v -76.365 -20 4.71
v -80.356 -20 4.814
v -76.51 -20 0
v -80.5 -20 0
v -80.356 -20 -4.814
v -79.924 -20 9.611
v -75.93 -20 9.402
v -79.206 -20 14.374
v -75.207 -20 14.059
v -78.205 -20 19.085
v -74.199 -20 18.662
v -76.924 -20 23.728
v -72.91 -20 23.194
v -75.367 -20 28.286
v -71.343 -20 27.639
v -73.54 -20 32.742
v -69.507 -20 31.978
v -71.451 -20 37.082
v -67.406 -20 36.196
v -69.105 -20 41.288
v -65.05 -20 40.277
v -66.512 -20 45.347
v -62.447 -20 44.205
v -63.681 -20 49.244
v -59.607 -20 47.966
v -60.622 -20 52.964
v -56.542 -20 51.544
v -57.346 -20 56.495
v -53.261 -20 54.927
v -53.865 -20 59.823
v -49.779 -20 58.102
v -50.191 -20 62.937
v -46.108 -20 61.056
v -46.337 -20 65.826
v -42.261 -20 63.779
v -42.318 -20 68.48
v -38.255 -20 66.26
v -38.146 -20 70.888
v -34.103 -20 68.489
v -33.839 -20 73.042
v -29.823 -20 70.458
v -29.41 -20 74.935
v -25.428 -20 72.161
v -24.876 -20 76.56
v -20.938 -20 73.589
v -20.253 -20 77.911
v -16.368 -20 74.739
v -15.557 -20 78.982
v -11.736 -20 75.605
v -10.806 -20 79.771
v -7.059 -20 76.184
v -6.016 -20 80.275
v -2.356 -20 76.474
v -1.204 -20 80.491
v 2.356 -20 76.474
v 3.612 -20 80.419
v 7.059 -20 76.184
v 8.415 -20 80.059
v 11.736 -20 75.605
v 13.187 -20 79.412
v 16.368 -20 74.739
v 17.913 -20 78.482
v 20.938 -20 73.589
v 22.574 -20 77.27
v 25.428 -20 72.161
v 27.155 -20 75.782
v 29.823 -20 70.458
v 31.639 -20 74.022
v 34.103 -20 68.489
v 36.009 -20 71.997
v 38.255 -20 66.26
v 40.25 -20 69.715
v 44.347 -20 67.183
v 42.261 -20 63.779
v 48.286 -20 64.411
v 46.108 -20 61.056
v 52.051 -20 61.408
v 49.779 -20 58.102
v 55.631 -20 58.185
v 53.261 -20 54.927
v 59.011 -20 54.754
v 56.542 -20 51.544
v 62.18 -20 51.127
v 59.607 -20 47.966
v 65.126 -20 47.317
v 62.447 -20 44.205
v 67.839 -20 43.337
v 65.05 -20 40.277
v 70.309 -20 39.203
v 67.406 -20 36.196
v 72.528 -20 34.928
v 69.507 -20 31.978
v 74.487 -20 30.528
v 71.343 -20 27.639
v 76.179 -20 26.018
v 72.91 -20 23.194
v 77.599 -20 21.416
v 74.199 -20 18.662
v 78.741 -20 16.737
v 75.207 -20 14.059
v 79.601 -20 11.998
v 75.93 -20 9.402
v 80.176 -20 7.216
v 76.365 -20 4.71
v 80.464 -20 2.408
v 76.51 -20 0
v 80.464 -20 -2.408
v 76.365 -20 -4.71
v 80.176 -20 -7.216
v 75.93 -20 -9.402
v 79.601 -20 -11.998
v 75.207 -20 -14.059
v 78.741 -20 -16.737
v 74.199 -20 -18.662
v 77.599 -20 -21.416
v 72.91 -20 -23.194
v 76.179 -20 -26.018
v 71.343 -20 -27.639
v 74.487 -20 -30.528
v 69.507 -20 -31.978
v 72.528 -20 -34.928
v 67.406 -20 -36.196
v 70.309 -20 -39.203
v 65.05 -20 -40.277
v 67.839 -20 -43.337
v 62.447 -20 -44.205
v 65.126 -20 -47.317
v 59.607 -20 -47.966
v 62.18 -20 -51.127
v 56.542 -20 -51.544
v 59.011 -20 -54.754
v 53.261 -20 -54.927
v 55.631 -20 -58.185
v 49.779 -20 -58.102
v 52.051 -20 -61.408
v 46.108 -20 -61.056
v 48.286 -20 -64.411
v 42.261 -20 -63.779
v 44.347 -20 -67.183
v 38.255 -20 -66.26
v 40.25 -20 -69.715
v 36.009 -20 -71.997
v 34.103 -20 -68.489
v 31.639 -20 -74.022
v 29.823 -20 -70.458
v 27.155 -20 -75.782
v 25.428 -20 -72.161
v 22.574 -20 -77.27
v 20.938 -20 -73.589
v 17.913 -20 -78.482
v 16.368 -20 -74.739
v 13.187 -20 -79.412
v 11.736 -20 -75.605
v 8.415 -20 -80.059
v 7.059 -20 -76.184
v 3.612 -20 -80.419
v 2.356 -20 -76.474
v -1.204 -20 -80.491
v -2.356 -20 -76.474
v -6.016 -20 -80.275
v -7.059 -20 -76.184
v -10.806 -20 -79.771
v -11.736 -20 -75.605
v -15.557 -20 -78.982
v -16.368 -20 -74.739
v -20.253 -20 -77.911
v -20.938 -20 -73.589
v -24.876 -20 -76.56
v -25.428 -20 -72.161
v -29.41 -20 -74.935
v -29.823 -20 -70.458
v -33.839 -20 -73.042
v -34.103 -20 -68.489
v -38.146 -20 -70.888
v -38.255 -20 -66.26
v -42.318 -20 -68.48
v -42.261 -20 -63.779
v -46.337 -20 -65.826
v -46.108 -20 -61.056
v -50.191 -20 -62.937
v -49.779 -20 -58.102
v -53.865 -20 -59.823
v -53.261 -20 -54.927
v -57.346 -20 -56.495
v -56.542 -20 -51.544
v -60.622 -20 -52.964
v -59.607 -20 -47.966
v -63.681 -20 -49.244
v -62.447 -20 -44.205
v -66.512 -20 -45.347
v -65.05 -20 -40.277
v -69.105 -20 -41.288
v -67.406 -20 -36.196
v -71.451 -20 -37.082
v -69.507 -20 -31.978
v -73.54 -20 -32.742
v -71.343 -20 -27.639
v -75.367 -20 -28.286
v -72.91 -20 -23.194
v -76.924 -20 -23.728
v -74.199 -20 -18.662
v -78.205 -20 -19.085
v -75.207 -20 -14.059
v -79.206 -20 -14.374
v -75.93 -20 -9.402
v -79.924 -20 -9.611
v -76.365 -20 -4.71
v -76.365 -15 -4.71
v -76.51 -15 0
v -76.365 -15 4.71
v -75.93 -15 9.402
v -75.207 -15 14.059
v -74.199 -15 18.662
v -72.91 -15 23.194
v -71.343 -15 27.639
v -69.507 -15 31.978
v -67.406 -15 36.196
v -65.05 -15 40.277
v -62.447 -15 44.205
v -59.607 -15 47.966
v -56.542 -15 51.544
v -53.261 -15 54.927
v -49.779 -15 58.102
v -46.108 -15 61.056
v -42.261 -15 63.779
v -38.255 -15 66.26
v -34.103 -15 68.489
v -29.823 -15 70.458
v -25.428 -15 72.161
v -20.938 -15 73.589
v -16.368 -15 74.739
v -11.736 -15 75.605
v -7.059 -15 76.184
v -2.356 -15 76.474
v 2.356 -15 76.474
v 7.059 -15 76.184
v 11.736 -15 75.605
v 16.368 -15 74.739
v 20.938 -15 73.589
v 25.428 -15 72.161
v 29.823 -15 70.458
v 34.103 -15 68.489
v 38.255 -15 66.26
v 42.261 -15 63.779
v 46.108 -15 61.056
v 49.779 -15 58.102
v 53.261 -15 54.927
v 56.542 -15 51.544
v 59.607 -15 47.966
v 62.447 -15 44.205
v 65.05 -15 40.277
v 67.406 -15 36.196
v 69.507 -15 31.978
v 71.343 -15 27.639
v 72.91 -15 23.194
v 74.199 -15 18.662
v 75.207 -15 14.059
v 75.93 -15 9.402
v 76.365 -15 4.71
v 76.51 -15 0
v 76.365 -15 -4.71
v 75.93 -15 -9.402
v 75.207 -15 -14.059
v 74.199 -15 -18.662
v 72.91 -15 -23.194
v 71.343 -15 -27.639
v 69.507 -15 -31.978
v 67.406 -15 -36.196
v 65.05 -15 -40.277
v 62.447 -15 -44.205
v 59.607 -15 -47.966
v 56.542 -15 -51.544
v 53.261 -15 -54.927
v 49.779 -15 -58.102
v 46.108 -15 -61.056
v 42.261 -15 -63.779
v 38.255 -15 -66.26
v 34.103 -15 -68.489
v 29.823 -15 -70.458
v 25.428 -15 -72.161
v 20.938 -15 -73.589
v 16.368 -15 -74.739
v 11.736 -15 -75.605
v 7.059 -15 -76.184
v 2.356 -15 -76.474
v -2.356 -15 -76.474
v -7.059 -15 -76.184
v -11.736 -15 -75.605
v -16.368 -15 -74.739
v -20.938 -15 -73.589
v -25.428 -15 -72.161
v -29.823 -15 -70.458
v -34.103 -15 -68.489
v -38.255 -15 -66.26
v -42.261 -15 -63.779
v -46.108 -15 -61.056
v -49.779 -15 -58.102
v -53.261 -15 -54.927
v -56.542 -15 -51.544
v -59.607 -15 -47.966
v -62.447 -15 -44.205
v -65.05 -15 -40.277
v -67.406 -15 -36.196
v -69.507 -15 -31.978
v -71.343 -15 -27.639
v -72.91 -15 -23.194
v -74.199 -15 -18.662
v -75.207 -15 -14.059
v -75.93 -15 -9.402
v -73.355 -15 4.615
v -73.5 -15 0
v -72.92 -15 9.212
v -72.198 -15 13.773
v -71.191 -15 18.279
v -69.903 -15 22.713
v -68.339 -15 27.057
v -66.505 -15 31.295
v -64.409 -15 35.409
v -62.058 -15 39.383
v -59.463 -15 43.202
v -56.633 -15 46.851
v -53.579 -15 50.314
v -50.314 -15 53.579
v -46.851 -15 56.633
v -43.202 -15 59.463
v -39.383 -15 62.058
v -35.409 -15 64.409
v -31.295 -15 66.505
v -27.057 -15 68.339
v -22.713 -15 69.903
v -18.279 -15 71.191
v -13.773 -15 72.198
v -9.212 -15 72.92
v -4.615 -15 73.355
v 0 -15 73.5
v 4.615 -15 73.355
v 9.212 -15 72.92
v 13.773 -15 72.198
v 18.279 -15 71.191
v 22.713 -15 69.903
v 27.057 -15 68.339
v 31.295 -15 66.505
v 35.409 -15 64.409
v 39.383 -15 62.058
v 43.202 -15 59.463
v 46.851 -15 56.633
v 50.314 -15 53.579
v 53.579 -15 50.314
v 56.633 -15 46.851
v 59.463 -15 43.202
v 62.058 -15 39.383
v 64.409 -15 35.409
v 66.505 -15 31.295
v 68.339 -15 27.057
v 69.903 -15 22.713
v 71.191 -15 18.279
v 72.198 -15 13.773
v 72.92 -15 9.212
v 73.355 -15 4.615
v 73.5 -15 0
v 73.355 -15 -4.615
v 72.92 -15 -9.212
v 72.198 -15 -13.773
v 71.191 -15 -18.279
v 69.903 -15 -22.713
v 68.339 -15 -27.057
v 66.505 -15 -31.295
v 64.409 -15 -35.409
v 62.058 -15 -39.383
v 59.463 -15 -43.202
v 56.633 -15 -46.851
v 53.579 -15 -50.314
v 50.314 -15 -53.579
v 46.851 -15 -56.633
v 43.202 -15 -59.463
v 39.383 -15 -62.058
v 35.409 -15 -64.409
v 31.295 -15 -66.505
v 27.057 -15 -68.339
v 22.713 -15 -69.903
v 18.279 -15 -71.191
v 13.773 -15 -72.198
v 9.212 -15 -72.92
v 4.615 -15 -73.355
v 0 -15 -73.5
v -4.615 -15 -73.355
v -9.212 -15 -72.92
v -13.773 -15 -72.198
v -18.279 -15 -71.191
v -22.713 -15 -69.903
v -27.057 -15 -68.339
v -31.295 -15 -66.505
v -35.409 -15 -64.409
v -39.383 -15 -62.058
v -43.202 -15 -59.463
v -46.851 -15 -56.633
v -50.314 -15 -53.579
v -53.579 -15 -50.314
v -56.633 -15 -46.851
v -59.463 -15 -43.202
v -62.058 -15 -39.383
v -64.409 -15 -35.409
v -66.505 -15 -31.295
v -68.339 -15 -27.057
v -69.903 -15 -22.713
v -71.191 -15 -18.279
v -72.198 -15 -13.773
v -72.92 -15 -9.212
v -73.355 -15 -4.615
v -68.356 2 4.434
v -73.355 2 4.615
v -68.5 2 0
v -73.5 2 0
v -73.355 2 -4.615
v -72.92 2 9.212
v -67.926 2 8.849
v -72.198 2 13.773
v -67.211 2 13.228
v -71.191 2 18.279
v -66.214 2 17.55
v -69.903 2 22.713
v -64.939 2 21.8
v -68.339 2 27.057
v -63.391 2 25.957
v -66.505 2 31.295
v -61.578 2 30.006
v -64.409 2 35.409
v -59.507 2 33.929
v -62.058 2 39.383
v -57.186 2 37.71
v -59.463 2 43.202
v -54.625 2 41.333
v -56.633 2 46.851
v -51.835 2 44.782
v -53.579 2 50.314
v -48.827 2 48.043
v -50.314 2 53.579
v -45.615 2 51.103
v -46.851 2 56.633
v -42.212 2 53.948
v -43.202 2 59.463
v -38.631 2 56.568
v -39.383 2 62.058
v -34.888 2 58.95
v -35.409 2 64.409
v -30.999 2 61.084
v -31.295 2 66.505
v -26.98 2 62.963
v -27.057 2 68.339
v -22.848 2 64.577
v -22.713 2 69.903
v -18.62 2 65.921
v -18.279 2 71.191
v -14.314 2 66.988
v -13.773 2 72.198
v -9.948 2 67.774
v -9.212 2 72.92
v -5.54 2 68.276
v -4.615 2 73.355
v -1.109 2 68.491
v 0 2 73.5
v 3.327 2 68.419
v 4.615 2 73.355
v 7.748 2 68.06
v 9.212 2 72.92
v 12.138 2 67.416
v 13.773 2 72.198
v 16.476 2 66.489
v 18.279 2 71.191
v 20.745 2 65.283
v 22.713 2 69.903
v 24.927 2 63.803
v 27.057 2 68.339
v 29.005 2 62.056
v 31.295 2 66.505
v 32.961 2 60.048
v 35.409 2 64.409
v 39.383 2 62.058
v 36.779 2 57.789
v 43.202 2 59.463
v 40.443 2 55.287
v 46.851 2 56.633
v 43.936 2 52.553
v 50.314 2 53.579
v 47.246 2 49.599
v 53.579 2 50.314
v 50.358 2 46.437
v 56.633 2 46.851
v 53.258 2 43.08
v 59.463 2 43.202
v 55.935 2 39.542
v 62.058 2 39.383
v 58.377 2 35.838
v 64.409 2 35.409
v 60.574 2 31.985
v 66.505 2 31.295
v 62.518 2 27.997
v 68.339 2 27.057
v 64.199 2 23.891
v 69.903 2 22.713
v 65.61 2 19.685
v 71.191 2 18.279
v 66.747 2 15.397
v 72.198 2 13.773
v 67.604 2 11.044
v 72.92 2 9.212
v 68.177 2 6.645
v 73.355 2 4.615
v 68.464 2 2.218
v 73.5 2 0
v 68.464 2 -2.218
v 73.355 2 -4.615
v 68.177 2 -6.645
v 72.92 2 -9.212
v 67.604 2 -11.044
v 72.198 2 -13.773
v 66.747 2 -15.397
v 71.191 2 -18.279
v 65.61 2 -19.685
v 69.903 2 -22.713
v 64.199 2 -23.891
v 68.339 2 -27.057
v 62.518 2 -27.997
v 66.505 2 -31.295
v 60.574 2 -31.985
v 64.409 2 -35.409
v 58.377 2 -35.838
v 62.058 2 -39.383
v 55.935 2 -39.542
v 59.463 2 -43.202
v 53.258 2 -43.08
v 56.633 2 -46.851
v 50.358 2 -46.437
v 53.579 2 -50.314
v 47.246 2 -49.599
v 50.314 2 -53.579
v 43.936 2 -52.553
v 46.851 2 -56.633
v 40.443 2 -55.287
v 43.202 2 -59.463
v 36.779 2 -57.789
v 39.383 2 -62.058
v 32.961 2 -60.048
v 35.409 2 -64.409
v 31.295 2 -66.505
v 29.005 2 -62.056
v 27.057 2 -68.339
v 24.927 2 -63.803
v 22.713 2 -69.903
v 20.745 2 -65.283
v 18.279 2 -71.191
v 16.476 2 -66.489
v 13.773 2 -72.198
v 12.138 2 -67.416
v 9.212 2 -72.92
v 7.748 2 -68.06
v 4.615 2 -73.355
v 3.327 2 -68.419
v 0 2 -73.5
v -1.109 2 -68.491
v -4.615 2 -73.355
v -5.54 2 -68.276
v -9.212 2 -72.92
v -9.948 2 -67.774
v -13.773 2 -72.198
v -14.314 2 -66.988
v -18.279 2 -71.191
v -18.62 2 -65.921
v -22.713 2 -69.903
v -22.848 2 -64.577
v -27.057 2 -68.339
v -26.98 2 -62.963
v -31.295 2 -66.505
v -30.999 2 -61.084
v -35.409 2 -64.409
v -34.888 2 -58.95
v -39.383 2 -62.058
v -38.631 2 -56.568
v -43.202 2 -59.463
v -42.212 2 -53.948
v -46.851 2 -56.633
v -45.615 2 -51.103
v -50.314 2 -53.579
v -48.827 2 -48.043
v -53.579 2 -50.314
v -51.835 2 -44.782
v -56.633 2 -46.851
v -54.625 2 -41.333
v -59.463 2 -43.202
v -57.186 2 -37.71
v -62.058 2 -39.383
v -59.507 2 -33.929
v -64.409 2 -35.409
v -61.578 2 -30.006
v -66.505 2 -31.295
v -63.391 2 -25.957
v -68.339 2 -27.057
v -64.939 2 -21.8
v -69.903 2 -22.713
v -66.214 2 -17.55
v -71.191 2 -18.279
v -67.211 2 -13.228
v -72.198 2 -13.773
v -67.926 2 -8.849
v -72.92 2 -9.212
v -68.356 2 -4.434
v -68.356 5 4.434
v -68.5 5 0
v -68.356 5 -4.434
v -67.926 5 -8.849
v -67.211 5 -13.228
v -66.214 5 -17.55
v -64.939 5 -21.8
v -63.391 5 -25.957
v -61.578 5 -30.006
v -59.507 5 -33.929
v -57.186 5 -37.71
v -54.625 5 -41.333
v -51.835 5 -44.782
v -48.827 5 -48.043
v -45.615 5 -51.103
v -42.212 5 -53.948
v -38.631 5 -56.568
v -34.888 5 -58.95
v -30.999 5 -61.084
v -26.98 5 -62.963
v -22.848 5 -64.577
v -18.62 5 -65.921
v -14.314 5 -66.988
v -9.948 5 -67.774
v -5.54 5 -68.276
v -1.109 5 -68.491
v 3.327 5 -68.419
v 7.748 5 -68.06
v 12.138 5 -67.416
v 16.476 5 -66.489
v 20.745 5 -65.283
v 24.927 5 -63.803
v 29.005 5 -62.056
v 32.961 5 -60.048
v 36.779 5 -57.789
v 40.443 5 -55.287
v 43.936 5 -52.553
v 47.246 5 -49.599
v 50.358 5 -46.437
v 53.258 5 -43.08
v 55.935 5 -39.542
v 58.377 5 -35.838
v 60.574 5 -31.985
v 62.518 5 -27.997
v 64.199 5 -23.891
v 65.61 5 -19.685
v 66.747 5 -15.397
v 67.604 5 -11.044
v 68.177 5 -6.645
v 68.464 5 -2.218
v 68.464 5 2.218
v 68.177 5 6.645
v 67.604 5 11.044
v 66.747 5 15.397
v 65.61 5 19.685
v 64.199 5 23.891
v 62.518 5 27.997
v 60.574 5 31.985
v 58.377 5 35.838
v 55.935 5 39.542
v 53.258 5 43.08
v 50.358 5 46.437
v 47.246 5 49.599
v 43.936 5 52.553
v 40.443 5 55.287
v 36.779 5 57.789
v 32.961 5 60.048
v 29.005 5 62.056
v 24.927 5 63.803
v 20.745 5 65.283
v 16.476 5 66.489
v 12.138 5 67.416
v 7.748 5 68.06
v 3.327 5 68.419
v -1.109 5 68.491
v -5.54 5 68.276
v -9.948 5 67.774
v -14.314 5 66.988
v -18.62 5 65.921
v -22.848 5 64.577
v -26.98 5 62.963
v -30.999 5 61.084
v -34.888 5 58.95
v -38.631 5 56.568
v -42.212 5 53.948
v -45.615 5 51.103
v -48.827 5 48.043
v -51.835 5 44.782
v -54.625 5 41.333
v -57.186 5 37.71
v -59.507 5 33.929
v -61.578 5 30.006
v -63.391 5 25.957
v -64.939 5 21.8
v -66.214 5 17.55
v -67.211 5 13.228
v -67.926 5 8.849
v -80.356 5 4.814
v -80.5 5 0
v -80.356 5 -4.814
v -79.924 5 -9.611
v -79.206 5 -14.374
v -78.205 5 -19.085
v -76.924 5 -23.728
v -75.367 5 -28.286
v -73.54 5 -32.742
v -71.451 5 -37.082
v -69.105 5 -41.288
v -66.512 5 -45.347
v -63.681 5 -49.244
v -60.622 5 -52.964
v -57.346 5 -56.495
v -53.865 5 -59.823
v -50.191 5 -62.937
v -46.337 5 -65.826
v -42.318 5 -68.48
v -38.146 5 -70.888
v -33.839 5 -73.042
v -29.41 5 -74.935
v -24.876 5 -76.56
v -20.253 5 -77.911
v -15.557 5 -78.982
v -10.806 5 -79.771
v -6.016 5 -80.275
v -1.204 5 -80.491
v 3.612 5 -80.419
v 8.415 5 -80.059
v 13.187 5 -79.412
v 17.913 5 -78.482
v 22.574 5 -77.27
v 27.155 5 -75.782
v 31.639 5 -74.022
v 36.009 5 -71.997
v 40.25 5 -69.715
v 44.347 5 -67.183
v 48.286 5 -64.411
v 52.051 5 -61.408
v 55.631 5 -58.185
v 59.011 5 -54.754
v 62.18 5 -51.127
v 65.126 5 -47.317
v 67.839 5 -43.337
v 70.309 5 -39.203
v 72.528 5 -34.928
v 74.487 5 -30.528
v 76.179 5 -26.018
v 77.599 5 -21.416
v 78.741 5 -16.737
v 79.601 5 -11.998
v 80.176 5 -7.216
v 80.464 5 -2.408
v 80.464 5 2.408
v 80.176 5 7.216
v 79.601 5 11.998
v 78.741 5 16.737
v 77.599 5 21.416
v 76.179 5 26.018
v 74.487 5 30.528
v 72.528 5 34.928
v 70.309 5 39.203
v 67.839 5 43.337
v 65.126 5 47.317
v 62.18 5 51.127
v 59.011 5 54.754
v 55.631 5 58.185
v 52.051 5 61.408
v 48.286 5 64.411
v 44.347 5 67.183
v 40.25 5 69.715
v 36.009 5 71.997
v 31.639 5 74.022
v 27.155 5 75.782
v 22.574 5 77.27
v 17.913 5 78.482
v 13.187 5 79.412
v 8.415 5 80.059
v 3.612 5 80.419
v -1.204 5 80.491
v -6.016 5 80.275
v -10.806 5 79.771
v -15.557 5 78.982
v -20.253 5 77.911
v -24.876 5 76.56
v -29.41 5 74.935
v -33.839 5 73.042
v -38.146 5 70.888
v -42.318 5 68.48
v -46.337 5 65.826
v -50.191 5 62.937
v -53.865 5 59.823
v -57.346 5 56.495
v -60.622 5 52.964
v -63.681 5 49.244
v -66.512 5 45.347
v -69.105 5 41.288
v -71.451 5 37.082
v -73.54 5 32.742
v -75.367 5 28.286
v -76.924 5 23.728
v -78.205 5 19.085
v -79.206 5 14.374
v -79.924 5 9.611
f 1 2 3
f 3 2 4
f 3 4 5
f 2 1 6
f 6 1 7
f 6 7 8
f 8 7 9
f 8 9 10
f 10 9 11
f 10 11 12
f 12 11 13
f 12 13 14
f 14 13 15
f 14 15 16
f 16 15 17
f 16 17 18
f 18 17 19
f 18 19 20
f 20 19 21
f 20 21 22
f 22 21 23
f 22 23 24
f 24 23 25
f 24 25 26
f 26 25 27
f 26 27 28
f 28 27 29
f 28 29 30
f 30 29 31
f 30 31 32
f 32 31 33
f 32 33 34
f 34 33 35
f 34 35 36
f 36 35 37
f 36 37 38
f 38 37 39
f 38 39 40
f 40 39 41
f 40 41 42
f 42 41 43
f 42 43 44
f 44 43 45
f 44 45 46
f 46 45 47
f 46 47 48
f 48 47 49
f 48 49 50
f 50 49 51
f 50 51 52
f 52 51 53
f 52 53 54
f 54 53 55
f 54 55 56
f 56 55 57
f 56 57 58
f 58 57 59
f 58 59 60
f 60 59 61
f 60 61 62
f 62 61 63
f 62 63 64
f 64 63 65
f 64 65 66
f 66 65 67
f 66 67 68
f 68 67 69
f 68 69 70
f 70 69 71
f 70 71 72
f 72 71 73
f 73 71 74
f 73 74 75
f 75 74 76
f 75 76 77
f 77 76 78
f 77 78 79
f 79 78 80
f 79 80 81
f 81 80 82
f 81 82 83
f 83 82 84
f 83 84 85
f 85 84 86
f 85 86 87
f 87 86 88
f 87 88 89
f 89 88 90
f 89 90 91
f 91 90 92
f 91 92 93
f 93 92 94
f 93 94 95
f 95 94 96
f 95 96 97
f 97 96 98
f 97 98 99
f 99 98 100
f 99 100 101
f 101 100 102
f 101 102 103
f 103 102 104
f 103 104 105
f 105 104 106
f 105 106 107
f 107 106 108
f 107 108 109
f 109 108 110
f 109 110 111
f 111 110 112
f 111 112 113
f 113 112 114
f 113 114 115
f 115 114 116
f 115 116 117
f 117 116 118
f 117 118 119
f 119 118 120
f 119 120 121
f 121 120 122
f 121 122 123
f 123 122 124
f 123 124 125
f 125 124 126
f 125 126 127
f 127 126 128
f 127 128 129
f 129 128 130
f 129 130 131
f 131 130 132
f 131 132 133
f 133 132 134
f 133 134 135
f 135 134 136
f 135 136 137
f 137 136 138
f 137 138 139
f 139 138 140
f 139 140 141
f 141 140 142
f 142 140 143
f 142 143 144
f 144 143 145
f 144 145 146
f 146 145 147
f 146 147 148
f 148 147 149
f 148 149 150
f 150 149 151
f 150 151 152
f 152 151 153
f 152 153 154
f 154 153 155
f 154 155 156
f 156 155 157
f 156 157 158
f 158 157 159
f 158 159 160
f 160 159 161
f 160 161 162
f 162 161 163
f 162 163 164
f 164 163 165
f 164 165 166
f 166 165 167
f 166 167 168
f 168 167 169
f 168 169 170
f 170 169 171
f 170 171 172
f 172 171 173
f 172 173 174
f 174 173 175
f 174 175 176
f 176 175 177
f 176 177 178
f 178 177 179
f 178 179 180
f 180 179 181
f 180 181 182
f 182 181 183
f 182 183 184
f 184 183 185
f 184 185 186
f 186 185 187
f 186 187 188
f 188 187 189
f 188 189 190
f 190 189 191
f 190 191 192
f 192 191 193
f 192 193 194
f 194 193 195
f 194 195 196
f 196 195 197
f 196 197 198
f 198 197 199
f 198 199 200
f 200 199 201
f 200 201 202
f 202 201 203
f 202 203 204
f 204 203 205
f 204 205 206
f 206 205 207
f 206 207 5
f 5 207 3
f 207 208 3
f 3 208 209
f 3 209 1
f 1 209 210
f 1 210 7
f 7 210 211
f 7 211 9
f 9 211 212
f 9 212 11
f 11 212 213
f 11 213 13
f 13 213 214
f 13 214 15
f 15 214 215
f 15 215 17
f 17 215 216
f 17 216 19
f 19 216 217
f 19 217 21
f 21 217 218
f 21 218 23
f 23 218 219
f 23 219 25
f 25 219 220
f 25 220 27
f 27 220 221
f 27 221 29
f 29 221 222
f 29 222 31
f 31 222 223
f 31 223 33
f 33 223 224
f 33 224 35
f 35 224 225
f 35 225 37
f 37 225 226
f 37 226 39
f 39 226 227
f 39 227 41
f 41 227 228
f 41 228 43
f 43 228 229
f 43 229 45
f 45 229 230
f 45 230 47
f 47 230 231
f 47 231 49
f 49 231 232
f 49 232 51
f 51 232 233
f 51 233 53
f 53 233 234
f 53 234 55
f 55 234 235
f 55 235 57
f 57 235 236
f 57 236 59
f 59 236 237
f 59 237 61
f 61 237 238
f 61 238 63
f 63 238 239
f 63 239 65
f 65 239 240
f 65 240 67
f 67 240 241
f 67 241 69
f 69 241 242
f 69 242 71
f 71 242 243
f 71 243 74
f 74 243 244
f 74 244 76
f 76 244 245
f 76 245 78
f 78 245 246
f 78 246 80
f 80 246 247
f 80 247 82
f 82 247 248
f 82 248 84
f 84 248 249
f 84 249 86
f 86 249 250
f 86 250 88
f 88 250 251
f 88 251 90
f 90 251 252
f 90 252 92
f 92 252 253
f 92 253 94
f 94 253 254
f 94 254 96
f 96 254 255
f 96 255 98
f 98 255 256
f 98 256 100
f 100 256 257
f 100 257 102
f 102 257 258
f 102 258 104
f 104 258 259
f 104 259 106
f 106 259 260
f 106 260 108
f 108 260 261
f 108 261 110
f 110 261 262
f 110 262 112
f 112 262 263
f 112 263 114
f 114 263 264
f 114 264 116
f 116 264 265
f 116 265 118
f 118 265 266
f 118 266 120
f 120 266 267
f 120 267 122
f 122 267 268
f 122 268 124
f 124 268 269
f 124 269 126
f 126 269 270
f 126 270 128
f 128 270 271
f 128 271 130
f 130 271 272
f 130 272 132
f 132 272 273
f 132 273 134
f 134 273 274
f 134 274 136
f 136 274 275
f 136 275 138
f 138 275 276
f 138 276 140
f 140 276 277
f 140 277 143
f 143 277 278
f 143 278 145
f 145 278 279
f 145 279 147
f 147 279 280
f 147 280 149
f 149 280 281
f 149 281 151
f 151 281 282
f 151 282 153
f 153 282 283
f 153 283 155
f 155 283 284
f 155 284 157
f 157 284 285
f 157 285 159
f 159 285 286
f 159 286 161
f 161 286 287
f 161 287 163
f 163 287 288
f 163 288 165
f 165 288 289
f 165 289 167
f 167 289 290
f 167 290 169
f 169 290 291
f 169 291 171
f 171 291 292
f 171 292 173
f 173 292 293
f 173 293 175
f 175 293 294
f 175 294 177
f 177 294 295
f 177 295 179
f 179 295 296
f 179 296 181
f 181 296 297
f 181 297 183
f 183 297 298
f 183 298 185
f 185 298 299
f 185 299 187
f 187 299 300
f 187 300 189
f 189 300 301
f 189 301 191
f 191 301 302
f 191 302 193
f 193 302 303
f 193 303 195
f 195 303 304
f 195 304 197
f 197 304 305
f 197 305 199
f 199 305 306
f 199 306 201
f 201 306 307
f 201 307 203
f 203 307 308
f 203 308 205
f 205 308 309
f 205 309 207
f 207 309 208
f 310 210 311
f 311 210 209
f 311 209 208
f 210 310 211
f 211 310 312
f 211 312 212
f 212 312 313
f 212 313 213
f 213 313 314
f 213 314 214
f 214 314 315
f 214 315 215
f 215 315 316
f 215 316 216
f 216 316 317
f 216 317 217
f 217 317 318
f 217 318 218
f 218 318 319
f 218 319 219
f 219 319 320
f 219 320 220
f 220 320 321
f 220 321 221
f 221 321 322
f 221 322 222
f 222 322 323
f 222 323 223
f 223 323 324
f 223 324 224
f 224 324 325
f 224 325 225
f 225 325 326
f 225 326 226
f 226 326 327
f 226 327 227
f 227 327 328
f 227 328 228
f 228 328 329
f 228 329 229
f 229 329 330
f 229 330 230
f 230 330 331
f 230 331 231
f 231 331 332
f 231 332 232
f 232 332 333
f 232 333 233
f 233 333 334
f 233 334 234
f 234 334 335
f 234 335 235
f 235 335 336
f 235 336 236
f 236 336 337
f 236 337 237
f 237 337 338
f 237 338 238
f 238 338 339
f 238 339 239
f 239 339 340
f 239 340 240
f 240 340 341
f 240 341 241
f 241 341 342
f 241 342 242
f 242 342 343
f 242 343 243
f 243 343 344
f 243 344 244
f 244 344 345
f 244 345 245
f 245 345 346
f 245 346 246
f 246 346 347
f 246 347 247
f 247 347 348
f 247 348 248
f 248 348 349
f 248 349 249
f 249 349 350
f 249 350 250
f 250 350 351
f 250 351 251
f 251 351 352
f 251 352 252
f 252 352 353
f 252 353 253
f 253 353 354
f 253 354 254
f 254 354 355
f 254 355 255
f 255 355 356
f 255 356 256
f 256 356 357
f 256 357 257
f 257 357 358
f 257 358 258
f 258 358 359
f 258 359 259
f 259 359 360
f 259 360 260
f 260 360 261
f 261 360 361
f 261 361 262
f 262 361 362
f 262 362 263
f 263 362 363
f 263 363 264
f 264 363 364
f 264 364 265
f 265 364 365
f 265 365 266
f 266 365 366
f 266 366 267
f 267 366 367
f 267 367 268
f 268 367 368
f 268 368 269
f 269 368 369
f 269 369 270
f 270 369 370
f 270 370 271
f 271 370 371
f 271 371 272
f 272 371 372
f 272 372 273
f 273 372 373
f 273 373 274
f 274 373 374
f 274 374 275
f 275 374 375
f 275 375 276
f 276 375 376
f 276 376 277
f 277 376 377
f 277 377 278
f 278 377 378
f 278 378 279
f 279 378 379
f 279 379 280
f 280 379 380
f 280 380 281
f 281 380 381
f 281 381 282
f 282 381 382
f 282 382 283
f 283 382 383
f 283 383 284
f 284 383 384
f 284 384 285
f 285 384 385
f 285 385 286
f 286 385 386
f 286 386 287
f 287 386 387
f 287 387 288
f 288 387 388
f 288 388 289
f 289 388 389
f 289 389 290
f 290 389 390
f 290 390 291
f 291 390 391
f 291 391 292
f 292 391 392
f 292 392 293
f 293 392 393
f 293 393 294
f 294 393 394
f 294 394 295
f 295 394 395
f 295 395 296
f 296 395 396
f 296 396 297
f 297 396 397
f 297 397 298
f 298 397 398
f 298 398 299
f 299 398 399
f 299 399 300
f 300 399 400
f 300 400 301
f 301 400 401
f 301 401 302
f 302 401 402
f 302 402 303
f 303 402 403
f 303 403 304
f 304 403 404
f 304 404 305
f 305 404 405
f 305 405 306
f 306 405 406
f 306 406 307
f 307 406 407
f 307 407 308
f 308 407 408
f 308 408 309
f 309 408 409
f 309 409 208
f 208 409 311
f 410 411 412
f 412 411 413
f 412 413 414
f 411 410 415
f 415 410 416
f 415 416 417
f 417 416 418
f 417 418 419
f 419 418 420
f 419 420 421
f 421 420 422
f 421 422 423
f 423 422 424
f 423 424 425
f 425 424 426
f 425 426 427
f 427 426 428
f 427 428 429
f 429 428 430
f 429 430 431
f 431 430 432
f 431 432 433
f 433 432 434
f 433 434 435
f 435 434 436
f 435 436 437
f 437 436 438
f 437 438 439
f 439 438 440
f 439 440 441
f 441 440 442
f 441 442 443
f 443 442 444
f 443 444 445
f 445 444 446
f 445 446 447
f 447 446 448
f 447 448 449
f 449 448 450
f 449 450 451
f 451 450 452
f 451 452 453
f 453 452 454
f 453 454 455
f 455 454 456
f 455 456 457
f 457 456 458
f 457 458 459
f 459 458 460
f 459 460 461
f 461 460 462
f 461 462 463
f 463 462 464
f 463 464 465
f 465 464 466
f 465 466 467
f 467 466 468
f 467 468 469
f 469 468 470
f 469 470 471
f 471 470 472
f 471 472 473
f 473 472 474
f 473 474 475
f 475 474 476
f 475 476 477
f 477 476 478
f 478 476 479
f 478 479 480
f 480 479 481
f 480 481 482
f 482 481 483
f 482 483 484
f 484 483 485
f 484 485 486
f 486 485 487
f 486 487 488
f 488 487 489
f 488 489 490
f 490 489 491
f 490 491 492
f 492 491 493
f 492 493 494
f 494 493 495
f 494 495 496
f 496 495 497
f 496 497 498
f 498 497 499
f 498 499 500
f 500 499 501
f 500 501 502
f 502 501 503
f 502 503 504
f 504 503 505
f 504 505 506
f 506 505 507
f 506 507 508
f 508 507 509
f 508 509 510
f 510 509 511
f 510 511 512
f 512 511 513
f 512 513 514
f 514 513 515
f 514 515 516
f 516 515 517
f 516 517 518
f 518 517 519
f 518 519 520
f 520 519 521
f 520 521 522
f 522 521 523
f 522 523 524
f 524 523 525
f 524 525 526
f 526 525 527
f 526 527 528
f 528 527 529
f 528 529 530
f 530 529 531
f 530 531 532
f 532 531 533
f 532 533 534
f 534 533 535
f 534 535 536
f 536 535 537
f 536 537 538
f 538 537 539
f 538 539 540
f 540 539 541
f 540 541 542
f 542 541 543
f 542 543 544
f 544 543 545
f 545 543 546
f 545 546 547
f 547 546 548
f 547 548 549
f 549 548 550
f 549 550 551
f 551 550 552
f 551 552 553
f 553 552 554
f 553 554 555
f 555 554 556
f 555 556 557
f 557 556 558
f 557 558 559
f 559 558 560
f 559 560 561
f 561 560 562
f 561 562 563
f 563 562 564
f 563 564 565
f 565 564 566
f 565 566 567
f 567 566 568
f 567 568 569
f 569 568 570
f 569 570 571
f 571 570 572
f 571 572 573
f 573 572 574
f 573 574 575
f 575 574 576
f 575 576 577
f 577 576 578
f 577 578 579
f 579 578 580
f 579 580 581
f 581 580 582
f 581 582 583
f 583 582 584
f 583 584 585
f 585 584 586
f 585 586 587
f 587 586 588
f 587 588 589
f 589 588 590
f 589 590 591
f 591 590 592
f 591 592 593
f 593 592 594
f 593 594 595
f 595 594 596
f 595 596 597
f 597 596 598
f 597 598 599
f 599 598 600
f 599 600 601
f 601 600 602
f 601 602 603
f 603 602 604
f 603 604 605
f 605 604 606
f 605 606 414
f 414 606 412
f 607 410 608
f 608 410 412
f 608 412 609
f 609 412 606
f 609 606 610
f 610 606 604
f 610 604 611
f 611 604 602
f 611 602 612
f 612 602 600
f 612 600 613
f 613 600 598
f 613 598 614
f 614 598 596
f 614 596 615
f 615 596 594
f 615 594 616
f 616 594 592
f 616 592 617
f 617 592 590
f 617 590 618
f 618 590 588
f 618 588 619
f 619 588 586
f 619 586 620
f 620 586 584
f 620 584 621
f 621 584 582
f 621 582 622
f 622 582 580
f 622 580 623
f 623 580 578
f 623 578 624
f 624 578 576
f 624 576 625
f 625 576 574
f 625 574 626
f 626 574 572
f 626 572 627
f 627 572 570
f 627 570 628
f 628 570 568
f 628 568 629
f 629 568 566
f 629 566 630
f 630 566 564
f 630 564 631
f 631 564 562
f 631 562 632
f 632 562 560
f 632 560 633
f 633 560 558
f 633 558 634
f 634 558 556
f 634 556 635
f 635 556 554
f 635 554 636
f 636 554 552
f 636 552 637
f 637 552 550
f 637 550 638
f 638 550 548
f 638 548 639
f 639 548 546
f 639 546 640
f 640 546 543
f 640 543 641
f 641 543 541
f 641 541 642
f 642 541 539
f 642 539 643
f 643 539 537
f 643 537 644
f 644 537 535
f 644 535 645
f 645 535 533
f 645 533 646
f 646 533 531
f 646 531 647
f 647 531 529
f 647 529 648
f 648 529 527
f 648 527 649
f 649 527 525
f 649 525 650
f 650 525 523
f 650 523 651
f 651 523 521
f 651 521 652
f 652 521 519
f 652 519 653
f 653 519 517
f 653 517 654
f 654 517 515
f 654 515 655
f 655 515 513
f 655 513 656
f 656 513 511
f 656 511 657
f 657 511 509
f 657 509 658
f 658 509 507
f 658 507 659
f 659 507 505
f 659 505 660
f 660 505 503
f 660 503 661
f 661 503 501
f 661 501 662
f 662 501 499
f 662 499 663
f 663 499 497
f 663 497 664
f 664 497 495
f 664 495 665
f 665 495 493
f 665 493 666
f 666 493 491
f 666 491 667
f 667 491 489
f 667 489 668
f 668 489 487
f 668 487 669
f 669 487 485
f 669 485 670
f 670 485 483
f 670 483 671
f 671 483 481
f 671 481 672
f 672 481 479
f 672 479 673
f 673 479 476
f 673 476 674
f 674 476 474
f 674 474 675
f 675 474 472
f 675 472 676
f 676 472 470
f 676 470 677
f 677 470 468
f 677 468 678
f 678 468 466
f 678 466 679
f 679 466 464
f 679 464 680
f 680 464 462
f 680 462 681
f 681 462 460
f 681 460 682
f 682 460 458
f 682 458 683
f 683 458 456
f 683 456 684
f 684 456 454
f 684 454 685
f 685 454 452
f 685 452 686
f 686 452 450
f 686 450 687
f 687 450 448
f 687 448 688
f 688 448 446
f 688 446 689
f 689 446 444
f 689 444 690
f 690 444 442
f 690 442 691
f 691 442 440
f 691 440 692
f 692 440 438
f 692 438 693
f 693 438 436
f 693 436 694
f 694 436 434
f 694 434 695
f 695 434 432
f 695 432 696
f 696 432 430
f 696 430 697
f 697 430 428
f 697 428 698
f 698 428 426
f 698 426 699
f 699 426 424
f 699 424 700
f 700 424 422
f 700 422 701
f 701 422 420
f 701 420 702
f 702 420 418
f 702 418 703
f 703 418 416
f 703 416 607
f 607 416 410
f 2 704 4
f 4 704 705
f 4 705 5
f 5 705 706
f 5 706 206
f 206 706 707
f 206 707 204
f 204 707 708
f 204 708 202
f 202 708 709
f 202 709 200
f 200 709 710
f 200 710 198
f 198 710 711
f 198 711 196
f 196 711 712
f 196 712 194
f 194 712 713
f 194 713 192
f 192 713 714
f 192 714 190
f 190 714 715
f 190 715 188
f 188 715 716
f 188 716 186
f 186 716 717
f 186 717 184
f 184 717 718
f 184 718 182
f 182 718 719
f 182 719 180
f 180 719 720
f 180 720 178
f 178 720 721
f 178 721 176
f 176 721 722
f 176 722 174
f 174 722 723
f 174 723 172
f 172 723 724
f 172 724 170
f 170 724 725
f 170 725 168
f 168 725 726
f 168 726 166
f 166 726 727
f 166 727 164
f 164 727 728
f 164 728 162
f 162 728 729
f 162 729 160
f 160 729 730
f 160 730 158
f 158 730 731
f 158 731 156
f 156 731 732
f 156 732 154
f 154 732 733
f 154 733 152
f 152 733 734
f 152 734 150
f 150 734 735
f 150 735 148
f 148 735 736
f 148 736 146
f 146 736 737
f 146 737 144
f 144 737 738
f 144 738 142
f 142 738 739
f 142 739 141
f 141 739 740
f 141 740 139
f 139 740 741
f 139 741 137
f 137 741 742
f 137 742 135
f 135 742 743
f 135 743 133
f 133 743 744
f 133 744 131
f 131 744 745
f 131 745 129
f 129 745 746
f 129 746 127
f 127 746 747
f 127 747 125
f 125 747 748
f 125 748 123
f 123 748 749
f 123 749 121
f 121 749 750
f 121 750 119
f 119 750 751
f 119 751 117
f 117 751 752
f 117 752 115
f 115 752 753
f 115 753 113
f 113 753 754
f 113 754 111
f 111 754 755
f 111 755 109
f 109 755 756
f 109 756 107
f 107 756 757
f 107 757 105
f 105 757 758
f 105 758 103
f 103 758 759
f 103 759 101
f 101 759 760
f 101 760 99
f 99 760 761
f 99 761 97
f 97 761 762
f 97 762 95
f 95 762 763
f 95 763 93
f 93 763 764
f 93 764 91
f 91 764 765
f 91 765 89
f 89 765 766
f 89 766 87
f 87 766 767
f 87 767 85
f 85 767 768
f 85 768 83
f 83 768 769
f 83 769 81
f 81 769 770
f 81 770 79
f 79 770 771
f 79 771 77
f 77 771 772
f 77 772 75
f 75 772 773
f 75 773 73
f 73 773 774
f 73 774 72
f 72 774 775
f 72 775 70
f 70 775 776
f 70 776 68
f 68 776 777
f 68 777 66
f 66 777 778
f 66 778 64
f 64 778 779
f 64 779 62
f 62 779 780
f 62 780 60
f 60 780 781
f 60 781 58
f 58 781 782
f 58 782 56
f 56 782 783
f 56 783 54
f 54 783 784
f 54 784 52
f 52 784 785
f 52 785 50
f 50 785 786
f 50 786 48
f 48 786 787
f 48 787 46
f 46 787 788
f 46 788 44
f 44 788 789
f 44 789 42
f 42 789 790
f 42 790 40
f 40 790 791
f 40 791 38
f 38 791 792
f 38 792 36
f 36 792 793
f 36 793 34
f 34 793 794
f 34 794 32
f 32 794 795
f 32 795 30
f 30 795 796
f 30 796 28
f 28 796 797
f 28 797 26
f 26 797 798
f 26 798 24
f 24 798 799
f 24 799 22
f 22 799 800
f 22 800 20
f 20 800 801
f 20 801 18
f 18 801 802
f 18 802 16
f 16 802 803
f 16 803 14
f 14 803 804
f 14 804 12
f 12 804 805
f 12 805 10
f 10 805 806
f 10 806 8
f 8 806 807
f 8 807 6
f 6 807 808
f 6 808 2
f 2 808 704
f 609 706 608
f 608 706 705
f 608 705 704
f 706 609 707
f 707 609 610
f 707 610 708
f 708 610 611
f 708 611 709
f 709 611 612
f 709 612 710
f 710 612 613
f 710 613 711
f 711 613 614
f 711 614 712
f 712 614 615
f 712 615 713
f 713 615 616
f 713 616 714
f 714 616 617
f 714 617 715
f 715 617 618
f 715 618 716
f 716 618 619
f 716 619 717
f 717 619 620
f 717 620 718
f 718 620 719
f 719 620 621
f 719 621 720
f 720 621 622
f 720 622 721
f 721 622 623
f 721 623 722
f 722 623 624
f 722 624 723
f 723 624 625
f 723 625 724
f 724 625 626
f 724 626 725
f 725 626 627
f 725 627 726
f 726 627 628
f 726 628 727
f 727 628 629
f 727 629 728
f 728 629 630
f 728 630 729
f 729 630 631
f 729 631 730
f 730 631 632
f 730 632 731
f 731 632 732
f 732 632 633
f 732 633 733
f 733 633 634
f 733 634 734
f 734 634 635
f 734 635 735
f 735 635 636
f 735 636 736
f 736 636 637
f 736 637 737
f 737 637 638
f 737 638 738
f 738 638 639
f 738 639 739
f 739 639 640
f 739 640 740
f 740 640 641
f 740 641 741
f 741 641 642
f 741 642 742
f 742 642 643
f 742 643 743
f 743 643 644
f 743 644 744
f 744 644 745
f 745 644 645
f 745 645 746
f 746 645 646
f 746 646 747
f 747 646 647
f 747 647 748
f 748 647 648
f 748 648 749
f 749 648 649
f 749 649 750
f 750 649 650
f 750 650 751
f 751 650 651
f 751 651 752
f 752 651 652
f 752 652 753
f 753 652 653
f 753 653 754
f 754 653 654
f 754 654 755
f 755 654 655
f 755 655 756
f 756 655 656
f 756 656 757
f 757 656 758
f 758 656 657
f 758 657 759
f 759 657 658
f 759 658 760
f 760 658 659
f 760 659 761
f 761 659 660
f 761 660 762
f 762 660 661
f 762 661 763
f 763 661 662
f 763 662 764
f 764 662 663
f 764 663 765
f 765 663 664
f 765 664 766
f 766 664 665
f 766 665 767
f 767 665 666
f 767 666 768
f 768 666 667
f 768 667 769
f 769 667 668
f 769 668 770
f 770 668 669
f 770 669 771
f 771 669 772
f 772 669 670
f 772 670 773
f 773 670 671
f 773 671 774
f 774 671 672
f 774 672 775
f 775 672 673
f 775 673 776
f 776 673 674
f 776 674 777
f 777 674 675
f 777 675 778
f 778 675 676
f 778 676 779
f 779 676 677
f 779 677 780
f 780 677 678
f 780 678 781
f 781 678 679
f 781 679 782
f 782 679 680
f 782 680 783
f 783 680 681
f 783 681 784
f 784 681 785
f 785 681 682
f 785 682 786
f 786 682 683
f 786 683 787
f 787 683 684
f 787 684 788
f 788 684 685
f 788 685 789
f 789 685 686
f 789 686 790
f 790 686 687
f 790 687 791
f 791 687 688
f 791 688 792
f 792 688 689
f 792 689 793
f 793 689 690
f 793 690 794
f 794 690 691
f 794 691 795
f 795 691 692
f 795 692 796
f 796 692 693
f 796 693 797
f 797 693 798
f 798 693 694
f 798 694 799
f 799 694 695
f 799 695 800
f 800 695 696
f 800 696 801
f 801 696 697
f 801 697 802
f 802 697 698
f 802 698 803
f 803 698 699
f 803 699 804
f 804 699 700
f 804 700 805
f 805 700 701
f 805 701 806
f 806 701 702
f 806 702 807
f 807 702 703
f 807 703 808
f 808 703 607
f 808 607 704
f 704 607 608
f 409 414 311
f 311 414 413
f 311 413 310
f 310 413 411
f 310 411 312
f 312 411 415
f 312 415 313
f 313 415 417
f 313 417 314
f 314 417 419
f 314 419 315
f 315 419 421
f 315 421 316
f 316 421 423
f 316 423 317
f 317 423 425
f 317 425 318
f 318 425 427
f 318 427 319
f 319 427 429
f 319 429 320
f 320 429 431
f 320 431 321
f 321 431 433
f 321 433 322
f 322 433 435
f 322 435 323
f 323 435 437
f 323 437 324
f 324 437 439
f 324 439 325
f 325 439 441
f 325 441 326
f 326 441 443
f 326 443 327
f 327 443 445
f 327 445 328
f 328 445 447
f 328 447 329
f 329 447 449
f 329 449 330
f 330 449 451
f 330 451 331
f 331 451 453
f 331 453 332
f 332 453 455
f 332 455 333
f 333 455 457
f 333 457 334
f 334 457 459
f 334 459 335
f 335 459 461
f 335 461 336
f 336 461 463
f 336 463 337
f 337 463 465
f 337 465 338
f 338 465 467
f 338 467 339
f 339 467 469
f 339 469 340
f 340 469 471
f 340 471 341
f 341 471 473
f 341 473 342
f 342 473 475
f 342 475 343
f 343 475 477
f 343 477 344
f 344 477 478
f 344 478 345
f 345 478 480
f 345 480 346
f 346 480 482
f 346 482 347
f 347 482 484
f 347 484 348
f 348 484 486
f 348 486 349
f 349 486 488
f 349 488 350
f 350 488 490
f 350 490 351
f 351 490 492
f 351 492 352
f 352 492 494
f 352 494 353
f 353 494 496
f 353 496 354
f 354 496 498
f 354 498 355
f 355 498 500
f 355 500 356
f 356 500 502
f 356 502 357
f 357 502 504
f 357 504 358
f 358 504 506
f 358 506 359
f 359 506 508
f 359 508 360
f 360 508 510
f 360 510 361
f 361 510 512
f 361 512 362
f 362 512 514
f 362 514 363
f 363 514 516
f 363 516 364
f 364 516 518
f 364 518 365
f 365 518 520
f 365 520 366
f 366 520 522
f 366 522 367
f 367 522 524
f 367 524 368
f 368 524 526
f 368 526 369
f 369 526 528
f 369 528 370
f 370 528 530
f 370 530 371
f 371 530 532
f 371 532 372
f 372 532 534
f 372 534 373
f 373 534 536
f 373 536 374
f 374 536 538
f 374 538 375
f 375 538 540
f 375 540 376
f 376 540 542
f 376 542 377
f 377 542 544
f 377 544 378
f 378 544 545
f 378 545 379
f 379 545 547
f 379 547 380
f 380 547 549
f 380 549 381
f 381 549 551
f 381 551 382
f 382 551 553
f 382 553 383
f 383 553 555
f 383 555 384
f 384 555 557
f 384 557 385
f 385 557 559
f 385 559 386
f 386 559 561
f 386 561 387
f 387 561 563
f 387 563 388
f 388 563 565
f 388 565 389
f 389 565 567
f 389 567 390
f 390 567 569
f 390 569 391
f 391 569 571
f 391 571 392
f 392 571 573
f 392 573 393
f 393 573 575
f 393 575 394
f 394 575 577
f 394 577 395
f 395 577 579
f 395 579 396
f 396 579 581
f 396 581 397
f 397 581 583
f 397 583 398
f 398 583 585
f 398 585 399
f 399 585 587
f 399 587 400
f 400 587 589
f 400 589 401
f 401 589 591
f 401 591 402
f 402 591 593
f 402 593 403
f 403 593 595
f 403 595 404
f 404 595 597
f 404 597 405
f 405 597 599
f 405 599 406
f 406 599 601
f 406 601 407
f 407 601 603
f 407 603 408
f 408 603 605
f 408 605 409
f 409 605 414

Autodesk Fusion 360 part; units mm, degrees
sketch "Sketch1" plane through (0, 0, 0) normal (0, 1, 0) x (1, 0, 0)
  circle A0 centre (0, 0) radius 73.5
  circle A1 centre (0, 0) radius 76.5
  dimension "d1" = 147
  dimension "d2" = 3
extrude "Extrude1" add sketch "Sketch1" along normal blind 2 makes body 1
ref_plane "WorkPlane1" through (0, -17, 0) normal (0, 1, 0) x (0, 0, 1)
sketch "Sketch2" plane through (0, -17, 0) normal (0, 1, 0) x (1, 0, 0)
  circle A0 centre (0, 0) radius 76.5
  circle A1 centre (0, 0) radius 76.51
  circle A2 centre (0, 0) radius 80.5
  dimension "d10" = 0.01
  dimension "d11" = 4
extrude "Extrude2" add sketch "Sketch2" along normal blind 2 separate body contours A2 makes body 2
ref_plane "WorkPlane2" through (0, 5, 0) normal (0, 1, 0) x (1, 0, 0)
sketch "Sketch3" plane through (0, 5, 0) normal (0, 1, 0) x (1, 0, 0)
  circle A0 centre (0, 0) radius 68.5
  circle A1 centre (0, 0) radius 73.5
  circle A2 centre (0, 0) radius 80.5
  dimension "d13" = 5
extrude "Extrude3" add sketch "Sketch3" against normal up to surface (3 mm away) contours A1 | A2 bodies 1
sketch "Sketch4" plane through (0, 2, 0) normal (0, -1, 0) x (1, 0, 0)
  circle A0 centre (0, 0) radius 80.5
  circle A1 centre (0, 0) radius 76.5
extrude "Extrude4" add sketch "Sketch4" along normal up to surface (17 mm away) bodies 1 2
sketch "Sketch5" plane through (0, -17, 0) normal (0, -1, 0) x (1, 0, 0)
  circle A0 centre (0, 0) radius 76.51
  circle A1 centre (0, 0) radius 80.5
  circle A2 centre (0, 0) radius 76.51
extrude "Extrude5" add sketch "Sketch5" along normal blind 3 bodies 1
sketch "Sketch6" plane through (0, 0, 0) normal (0, -1, 0) x (1, 0, 0)
  circle A0 centre (0, 0) radius 73.5
  circle A1 centre (0, 0) radius 76.5
extrude "Extrude6" add sketch "Sketch6" along normal blind 15 bodies 1
